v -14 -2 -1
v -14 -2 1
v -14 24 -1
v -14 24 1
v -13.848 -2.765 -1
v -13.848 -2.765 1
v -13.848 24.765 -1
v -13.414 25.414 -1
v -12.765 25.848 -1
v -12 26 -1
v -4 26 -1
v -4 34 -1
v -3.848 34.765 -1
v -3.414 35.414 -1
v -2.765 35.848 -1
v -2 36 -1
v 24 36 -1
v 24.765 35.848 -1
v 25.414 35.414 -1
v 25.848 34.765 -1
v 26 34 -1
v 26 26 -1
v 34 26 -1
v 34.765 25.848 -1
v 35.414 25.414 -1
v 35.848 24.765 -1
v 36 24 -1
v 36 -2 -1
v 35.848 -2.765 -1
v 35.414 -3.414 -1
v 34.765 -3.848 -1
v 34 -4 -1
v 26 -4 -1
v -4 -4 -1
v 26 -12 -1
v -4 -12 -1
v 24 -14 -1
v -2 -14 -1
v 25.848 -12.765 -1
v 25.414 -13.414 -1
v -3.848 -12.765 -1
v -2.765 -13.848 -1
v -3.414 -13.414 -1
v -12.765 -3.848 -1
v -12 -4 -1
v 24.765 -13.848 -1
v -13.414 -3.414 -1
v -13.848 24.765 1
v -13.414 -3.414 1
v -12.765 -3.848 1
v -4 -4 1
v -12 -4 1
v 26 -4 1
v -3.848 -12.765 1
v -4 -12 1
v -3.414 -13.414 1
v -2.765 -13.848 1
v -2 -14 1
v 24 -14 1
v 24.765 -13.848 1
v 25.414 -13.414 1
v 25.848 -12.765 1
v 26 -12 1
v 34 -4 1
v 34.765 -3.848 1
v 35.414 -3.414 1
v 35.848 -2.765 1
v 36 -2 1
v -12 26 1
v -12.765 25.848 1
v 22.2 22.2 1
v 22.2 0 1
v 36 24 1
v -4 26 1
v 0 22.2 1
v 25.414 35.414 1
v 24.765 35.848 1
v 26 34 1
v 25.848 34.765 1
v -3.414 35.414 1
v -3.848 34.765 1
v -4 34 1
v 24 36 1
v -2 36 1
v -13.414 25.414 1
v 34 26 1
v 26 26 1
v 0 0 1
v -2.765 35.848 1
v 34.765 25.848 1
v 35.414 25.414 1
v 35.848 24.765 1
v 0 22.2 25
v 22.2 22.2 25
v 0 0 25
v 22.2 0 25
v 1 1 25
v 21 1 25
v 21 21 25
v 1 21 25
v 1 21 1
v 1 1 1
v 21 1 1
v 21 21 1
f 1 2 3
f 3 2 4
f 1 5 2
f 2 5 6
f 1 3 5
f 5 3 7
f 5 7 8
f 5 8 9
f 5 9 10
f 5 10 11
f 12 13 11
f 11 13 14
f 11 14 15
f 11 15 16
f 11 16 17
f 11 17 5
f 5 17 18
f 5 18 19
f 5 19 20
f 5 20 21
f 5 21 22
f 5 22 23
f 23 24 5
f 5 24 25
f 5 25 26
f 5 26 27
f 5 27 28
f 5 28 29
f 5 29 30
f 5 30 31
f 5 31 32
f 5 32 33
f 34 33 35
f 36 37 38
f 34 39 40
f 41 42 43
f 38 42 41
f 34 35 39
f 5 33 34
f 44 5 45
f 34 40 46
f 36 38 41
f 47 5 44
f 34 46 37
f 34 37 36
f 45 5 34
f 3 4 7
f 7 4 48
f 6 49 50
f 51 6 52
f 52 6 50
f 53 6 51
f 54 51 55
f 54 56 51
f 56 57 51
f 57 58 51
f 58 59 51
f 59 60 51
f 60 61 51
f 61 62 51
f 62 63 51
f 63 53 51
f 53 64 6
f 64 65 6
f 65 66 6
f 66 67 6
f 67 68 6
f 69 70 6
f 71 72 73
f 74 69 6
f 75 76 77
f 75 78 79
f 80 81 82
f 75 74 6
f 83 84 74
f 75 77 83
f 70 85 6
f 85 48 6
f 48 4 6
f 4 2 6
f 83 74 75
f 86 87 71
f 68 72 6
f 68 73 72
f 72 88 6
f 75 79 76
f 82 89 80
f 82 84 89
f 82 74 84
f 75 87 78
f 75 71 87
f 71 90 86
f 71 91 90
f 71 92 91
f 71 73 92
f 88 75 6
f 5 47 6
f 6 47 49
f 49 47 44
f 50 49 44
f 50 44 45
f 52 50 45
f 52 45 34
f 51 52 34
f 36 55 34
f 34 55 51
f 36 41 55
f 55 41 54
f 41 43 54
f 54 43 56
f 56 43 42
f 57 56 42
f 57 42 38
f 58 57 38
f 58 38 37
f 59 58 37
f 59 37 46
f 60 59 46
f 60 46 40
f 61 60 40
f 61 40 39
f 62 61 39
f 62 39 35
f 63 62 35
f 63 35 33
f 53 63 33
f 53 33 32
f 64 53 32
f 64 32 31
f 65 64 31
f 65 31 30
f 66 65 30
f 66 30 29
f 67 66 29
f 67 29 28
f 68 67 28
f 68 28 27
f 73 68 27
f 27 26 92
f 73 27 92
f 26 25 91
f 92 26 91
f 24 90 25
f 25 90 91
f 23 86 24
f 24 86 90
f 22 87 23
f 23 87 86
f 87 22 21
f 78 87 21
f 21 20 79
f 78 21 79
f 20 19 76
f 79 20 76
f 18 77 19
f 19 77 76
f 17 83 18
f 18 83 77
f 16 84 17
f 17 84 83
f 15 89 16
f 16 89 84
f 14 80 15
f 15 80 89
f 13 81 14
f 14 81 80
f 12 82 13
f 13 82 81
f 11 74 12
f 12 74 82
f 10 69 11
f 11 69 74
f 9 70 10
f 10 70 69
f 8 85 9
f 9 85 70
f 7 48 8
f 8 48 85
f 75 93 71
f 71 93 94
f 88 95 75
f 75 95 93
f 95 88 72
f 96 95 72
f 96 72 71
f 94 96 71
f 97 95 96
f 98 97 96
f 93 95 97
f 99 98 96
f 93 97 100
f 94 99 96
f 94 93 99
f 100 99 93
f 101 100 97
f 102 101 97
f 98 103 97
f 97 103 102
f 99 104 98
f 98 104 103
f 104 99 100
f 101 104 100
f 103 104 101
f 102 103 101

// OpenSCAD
//  Misumi 2020 extrusion "stand with 4 legs" 
//
//  I use this as the bottom of a 2020 web cam stand
//  for my Microsoft 3000 HD web cam.
//
//  I printed in PLA .4
//
//  aBrainDump.com

difference(){
cube([22.2,22.2,25]);
translate([1,1,1])
cube([20,20,28]);
}

translate([-12,-2,-1])
			minkowski() {
				cube([50-2*2,30-2*2,2-1]);
				cylinder(r=2, h=1, $fn=16);
			}

translate([-2,-12,-1])
			minkowski() {
				cube([30-2*2,50-2*2,2-1]);
				cylinder(r=2, h=1, $fn=16);
			}
